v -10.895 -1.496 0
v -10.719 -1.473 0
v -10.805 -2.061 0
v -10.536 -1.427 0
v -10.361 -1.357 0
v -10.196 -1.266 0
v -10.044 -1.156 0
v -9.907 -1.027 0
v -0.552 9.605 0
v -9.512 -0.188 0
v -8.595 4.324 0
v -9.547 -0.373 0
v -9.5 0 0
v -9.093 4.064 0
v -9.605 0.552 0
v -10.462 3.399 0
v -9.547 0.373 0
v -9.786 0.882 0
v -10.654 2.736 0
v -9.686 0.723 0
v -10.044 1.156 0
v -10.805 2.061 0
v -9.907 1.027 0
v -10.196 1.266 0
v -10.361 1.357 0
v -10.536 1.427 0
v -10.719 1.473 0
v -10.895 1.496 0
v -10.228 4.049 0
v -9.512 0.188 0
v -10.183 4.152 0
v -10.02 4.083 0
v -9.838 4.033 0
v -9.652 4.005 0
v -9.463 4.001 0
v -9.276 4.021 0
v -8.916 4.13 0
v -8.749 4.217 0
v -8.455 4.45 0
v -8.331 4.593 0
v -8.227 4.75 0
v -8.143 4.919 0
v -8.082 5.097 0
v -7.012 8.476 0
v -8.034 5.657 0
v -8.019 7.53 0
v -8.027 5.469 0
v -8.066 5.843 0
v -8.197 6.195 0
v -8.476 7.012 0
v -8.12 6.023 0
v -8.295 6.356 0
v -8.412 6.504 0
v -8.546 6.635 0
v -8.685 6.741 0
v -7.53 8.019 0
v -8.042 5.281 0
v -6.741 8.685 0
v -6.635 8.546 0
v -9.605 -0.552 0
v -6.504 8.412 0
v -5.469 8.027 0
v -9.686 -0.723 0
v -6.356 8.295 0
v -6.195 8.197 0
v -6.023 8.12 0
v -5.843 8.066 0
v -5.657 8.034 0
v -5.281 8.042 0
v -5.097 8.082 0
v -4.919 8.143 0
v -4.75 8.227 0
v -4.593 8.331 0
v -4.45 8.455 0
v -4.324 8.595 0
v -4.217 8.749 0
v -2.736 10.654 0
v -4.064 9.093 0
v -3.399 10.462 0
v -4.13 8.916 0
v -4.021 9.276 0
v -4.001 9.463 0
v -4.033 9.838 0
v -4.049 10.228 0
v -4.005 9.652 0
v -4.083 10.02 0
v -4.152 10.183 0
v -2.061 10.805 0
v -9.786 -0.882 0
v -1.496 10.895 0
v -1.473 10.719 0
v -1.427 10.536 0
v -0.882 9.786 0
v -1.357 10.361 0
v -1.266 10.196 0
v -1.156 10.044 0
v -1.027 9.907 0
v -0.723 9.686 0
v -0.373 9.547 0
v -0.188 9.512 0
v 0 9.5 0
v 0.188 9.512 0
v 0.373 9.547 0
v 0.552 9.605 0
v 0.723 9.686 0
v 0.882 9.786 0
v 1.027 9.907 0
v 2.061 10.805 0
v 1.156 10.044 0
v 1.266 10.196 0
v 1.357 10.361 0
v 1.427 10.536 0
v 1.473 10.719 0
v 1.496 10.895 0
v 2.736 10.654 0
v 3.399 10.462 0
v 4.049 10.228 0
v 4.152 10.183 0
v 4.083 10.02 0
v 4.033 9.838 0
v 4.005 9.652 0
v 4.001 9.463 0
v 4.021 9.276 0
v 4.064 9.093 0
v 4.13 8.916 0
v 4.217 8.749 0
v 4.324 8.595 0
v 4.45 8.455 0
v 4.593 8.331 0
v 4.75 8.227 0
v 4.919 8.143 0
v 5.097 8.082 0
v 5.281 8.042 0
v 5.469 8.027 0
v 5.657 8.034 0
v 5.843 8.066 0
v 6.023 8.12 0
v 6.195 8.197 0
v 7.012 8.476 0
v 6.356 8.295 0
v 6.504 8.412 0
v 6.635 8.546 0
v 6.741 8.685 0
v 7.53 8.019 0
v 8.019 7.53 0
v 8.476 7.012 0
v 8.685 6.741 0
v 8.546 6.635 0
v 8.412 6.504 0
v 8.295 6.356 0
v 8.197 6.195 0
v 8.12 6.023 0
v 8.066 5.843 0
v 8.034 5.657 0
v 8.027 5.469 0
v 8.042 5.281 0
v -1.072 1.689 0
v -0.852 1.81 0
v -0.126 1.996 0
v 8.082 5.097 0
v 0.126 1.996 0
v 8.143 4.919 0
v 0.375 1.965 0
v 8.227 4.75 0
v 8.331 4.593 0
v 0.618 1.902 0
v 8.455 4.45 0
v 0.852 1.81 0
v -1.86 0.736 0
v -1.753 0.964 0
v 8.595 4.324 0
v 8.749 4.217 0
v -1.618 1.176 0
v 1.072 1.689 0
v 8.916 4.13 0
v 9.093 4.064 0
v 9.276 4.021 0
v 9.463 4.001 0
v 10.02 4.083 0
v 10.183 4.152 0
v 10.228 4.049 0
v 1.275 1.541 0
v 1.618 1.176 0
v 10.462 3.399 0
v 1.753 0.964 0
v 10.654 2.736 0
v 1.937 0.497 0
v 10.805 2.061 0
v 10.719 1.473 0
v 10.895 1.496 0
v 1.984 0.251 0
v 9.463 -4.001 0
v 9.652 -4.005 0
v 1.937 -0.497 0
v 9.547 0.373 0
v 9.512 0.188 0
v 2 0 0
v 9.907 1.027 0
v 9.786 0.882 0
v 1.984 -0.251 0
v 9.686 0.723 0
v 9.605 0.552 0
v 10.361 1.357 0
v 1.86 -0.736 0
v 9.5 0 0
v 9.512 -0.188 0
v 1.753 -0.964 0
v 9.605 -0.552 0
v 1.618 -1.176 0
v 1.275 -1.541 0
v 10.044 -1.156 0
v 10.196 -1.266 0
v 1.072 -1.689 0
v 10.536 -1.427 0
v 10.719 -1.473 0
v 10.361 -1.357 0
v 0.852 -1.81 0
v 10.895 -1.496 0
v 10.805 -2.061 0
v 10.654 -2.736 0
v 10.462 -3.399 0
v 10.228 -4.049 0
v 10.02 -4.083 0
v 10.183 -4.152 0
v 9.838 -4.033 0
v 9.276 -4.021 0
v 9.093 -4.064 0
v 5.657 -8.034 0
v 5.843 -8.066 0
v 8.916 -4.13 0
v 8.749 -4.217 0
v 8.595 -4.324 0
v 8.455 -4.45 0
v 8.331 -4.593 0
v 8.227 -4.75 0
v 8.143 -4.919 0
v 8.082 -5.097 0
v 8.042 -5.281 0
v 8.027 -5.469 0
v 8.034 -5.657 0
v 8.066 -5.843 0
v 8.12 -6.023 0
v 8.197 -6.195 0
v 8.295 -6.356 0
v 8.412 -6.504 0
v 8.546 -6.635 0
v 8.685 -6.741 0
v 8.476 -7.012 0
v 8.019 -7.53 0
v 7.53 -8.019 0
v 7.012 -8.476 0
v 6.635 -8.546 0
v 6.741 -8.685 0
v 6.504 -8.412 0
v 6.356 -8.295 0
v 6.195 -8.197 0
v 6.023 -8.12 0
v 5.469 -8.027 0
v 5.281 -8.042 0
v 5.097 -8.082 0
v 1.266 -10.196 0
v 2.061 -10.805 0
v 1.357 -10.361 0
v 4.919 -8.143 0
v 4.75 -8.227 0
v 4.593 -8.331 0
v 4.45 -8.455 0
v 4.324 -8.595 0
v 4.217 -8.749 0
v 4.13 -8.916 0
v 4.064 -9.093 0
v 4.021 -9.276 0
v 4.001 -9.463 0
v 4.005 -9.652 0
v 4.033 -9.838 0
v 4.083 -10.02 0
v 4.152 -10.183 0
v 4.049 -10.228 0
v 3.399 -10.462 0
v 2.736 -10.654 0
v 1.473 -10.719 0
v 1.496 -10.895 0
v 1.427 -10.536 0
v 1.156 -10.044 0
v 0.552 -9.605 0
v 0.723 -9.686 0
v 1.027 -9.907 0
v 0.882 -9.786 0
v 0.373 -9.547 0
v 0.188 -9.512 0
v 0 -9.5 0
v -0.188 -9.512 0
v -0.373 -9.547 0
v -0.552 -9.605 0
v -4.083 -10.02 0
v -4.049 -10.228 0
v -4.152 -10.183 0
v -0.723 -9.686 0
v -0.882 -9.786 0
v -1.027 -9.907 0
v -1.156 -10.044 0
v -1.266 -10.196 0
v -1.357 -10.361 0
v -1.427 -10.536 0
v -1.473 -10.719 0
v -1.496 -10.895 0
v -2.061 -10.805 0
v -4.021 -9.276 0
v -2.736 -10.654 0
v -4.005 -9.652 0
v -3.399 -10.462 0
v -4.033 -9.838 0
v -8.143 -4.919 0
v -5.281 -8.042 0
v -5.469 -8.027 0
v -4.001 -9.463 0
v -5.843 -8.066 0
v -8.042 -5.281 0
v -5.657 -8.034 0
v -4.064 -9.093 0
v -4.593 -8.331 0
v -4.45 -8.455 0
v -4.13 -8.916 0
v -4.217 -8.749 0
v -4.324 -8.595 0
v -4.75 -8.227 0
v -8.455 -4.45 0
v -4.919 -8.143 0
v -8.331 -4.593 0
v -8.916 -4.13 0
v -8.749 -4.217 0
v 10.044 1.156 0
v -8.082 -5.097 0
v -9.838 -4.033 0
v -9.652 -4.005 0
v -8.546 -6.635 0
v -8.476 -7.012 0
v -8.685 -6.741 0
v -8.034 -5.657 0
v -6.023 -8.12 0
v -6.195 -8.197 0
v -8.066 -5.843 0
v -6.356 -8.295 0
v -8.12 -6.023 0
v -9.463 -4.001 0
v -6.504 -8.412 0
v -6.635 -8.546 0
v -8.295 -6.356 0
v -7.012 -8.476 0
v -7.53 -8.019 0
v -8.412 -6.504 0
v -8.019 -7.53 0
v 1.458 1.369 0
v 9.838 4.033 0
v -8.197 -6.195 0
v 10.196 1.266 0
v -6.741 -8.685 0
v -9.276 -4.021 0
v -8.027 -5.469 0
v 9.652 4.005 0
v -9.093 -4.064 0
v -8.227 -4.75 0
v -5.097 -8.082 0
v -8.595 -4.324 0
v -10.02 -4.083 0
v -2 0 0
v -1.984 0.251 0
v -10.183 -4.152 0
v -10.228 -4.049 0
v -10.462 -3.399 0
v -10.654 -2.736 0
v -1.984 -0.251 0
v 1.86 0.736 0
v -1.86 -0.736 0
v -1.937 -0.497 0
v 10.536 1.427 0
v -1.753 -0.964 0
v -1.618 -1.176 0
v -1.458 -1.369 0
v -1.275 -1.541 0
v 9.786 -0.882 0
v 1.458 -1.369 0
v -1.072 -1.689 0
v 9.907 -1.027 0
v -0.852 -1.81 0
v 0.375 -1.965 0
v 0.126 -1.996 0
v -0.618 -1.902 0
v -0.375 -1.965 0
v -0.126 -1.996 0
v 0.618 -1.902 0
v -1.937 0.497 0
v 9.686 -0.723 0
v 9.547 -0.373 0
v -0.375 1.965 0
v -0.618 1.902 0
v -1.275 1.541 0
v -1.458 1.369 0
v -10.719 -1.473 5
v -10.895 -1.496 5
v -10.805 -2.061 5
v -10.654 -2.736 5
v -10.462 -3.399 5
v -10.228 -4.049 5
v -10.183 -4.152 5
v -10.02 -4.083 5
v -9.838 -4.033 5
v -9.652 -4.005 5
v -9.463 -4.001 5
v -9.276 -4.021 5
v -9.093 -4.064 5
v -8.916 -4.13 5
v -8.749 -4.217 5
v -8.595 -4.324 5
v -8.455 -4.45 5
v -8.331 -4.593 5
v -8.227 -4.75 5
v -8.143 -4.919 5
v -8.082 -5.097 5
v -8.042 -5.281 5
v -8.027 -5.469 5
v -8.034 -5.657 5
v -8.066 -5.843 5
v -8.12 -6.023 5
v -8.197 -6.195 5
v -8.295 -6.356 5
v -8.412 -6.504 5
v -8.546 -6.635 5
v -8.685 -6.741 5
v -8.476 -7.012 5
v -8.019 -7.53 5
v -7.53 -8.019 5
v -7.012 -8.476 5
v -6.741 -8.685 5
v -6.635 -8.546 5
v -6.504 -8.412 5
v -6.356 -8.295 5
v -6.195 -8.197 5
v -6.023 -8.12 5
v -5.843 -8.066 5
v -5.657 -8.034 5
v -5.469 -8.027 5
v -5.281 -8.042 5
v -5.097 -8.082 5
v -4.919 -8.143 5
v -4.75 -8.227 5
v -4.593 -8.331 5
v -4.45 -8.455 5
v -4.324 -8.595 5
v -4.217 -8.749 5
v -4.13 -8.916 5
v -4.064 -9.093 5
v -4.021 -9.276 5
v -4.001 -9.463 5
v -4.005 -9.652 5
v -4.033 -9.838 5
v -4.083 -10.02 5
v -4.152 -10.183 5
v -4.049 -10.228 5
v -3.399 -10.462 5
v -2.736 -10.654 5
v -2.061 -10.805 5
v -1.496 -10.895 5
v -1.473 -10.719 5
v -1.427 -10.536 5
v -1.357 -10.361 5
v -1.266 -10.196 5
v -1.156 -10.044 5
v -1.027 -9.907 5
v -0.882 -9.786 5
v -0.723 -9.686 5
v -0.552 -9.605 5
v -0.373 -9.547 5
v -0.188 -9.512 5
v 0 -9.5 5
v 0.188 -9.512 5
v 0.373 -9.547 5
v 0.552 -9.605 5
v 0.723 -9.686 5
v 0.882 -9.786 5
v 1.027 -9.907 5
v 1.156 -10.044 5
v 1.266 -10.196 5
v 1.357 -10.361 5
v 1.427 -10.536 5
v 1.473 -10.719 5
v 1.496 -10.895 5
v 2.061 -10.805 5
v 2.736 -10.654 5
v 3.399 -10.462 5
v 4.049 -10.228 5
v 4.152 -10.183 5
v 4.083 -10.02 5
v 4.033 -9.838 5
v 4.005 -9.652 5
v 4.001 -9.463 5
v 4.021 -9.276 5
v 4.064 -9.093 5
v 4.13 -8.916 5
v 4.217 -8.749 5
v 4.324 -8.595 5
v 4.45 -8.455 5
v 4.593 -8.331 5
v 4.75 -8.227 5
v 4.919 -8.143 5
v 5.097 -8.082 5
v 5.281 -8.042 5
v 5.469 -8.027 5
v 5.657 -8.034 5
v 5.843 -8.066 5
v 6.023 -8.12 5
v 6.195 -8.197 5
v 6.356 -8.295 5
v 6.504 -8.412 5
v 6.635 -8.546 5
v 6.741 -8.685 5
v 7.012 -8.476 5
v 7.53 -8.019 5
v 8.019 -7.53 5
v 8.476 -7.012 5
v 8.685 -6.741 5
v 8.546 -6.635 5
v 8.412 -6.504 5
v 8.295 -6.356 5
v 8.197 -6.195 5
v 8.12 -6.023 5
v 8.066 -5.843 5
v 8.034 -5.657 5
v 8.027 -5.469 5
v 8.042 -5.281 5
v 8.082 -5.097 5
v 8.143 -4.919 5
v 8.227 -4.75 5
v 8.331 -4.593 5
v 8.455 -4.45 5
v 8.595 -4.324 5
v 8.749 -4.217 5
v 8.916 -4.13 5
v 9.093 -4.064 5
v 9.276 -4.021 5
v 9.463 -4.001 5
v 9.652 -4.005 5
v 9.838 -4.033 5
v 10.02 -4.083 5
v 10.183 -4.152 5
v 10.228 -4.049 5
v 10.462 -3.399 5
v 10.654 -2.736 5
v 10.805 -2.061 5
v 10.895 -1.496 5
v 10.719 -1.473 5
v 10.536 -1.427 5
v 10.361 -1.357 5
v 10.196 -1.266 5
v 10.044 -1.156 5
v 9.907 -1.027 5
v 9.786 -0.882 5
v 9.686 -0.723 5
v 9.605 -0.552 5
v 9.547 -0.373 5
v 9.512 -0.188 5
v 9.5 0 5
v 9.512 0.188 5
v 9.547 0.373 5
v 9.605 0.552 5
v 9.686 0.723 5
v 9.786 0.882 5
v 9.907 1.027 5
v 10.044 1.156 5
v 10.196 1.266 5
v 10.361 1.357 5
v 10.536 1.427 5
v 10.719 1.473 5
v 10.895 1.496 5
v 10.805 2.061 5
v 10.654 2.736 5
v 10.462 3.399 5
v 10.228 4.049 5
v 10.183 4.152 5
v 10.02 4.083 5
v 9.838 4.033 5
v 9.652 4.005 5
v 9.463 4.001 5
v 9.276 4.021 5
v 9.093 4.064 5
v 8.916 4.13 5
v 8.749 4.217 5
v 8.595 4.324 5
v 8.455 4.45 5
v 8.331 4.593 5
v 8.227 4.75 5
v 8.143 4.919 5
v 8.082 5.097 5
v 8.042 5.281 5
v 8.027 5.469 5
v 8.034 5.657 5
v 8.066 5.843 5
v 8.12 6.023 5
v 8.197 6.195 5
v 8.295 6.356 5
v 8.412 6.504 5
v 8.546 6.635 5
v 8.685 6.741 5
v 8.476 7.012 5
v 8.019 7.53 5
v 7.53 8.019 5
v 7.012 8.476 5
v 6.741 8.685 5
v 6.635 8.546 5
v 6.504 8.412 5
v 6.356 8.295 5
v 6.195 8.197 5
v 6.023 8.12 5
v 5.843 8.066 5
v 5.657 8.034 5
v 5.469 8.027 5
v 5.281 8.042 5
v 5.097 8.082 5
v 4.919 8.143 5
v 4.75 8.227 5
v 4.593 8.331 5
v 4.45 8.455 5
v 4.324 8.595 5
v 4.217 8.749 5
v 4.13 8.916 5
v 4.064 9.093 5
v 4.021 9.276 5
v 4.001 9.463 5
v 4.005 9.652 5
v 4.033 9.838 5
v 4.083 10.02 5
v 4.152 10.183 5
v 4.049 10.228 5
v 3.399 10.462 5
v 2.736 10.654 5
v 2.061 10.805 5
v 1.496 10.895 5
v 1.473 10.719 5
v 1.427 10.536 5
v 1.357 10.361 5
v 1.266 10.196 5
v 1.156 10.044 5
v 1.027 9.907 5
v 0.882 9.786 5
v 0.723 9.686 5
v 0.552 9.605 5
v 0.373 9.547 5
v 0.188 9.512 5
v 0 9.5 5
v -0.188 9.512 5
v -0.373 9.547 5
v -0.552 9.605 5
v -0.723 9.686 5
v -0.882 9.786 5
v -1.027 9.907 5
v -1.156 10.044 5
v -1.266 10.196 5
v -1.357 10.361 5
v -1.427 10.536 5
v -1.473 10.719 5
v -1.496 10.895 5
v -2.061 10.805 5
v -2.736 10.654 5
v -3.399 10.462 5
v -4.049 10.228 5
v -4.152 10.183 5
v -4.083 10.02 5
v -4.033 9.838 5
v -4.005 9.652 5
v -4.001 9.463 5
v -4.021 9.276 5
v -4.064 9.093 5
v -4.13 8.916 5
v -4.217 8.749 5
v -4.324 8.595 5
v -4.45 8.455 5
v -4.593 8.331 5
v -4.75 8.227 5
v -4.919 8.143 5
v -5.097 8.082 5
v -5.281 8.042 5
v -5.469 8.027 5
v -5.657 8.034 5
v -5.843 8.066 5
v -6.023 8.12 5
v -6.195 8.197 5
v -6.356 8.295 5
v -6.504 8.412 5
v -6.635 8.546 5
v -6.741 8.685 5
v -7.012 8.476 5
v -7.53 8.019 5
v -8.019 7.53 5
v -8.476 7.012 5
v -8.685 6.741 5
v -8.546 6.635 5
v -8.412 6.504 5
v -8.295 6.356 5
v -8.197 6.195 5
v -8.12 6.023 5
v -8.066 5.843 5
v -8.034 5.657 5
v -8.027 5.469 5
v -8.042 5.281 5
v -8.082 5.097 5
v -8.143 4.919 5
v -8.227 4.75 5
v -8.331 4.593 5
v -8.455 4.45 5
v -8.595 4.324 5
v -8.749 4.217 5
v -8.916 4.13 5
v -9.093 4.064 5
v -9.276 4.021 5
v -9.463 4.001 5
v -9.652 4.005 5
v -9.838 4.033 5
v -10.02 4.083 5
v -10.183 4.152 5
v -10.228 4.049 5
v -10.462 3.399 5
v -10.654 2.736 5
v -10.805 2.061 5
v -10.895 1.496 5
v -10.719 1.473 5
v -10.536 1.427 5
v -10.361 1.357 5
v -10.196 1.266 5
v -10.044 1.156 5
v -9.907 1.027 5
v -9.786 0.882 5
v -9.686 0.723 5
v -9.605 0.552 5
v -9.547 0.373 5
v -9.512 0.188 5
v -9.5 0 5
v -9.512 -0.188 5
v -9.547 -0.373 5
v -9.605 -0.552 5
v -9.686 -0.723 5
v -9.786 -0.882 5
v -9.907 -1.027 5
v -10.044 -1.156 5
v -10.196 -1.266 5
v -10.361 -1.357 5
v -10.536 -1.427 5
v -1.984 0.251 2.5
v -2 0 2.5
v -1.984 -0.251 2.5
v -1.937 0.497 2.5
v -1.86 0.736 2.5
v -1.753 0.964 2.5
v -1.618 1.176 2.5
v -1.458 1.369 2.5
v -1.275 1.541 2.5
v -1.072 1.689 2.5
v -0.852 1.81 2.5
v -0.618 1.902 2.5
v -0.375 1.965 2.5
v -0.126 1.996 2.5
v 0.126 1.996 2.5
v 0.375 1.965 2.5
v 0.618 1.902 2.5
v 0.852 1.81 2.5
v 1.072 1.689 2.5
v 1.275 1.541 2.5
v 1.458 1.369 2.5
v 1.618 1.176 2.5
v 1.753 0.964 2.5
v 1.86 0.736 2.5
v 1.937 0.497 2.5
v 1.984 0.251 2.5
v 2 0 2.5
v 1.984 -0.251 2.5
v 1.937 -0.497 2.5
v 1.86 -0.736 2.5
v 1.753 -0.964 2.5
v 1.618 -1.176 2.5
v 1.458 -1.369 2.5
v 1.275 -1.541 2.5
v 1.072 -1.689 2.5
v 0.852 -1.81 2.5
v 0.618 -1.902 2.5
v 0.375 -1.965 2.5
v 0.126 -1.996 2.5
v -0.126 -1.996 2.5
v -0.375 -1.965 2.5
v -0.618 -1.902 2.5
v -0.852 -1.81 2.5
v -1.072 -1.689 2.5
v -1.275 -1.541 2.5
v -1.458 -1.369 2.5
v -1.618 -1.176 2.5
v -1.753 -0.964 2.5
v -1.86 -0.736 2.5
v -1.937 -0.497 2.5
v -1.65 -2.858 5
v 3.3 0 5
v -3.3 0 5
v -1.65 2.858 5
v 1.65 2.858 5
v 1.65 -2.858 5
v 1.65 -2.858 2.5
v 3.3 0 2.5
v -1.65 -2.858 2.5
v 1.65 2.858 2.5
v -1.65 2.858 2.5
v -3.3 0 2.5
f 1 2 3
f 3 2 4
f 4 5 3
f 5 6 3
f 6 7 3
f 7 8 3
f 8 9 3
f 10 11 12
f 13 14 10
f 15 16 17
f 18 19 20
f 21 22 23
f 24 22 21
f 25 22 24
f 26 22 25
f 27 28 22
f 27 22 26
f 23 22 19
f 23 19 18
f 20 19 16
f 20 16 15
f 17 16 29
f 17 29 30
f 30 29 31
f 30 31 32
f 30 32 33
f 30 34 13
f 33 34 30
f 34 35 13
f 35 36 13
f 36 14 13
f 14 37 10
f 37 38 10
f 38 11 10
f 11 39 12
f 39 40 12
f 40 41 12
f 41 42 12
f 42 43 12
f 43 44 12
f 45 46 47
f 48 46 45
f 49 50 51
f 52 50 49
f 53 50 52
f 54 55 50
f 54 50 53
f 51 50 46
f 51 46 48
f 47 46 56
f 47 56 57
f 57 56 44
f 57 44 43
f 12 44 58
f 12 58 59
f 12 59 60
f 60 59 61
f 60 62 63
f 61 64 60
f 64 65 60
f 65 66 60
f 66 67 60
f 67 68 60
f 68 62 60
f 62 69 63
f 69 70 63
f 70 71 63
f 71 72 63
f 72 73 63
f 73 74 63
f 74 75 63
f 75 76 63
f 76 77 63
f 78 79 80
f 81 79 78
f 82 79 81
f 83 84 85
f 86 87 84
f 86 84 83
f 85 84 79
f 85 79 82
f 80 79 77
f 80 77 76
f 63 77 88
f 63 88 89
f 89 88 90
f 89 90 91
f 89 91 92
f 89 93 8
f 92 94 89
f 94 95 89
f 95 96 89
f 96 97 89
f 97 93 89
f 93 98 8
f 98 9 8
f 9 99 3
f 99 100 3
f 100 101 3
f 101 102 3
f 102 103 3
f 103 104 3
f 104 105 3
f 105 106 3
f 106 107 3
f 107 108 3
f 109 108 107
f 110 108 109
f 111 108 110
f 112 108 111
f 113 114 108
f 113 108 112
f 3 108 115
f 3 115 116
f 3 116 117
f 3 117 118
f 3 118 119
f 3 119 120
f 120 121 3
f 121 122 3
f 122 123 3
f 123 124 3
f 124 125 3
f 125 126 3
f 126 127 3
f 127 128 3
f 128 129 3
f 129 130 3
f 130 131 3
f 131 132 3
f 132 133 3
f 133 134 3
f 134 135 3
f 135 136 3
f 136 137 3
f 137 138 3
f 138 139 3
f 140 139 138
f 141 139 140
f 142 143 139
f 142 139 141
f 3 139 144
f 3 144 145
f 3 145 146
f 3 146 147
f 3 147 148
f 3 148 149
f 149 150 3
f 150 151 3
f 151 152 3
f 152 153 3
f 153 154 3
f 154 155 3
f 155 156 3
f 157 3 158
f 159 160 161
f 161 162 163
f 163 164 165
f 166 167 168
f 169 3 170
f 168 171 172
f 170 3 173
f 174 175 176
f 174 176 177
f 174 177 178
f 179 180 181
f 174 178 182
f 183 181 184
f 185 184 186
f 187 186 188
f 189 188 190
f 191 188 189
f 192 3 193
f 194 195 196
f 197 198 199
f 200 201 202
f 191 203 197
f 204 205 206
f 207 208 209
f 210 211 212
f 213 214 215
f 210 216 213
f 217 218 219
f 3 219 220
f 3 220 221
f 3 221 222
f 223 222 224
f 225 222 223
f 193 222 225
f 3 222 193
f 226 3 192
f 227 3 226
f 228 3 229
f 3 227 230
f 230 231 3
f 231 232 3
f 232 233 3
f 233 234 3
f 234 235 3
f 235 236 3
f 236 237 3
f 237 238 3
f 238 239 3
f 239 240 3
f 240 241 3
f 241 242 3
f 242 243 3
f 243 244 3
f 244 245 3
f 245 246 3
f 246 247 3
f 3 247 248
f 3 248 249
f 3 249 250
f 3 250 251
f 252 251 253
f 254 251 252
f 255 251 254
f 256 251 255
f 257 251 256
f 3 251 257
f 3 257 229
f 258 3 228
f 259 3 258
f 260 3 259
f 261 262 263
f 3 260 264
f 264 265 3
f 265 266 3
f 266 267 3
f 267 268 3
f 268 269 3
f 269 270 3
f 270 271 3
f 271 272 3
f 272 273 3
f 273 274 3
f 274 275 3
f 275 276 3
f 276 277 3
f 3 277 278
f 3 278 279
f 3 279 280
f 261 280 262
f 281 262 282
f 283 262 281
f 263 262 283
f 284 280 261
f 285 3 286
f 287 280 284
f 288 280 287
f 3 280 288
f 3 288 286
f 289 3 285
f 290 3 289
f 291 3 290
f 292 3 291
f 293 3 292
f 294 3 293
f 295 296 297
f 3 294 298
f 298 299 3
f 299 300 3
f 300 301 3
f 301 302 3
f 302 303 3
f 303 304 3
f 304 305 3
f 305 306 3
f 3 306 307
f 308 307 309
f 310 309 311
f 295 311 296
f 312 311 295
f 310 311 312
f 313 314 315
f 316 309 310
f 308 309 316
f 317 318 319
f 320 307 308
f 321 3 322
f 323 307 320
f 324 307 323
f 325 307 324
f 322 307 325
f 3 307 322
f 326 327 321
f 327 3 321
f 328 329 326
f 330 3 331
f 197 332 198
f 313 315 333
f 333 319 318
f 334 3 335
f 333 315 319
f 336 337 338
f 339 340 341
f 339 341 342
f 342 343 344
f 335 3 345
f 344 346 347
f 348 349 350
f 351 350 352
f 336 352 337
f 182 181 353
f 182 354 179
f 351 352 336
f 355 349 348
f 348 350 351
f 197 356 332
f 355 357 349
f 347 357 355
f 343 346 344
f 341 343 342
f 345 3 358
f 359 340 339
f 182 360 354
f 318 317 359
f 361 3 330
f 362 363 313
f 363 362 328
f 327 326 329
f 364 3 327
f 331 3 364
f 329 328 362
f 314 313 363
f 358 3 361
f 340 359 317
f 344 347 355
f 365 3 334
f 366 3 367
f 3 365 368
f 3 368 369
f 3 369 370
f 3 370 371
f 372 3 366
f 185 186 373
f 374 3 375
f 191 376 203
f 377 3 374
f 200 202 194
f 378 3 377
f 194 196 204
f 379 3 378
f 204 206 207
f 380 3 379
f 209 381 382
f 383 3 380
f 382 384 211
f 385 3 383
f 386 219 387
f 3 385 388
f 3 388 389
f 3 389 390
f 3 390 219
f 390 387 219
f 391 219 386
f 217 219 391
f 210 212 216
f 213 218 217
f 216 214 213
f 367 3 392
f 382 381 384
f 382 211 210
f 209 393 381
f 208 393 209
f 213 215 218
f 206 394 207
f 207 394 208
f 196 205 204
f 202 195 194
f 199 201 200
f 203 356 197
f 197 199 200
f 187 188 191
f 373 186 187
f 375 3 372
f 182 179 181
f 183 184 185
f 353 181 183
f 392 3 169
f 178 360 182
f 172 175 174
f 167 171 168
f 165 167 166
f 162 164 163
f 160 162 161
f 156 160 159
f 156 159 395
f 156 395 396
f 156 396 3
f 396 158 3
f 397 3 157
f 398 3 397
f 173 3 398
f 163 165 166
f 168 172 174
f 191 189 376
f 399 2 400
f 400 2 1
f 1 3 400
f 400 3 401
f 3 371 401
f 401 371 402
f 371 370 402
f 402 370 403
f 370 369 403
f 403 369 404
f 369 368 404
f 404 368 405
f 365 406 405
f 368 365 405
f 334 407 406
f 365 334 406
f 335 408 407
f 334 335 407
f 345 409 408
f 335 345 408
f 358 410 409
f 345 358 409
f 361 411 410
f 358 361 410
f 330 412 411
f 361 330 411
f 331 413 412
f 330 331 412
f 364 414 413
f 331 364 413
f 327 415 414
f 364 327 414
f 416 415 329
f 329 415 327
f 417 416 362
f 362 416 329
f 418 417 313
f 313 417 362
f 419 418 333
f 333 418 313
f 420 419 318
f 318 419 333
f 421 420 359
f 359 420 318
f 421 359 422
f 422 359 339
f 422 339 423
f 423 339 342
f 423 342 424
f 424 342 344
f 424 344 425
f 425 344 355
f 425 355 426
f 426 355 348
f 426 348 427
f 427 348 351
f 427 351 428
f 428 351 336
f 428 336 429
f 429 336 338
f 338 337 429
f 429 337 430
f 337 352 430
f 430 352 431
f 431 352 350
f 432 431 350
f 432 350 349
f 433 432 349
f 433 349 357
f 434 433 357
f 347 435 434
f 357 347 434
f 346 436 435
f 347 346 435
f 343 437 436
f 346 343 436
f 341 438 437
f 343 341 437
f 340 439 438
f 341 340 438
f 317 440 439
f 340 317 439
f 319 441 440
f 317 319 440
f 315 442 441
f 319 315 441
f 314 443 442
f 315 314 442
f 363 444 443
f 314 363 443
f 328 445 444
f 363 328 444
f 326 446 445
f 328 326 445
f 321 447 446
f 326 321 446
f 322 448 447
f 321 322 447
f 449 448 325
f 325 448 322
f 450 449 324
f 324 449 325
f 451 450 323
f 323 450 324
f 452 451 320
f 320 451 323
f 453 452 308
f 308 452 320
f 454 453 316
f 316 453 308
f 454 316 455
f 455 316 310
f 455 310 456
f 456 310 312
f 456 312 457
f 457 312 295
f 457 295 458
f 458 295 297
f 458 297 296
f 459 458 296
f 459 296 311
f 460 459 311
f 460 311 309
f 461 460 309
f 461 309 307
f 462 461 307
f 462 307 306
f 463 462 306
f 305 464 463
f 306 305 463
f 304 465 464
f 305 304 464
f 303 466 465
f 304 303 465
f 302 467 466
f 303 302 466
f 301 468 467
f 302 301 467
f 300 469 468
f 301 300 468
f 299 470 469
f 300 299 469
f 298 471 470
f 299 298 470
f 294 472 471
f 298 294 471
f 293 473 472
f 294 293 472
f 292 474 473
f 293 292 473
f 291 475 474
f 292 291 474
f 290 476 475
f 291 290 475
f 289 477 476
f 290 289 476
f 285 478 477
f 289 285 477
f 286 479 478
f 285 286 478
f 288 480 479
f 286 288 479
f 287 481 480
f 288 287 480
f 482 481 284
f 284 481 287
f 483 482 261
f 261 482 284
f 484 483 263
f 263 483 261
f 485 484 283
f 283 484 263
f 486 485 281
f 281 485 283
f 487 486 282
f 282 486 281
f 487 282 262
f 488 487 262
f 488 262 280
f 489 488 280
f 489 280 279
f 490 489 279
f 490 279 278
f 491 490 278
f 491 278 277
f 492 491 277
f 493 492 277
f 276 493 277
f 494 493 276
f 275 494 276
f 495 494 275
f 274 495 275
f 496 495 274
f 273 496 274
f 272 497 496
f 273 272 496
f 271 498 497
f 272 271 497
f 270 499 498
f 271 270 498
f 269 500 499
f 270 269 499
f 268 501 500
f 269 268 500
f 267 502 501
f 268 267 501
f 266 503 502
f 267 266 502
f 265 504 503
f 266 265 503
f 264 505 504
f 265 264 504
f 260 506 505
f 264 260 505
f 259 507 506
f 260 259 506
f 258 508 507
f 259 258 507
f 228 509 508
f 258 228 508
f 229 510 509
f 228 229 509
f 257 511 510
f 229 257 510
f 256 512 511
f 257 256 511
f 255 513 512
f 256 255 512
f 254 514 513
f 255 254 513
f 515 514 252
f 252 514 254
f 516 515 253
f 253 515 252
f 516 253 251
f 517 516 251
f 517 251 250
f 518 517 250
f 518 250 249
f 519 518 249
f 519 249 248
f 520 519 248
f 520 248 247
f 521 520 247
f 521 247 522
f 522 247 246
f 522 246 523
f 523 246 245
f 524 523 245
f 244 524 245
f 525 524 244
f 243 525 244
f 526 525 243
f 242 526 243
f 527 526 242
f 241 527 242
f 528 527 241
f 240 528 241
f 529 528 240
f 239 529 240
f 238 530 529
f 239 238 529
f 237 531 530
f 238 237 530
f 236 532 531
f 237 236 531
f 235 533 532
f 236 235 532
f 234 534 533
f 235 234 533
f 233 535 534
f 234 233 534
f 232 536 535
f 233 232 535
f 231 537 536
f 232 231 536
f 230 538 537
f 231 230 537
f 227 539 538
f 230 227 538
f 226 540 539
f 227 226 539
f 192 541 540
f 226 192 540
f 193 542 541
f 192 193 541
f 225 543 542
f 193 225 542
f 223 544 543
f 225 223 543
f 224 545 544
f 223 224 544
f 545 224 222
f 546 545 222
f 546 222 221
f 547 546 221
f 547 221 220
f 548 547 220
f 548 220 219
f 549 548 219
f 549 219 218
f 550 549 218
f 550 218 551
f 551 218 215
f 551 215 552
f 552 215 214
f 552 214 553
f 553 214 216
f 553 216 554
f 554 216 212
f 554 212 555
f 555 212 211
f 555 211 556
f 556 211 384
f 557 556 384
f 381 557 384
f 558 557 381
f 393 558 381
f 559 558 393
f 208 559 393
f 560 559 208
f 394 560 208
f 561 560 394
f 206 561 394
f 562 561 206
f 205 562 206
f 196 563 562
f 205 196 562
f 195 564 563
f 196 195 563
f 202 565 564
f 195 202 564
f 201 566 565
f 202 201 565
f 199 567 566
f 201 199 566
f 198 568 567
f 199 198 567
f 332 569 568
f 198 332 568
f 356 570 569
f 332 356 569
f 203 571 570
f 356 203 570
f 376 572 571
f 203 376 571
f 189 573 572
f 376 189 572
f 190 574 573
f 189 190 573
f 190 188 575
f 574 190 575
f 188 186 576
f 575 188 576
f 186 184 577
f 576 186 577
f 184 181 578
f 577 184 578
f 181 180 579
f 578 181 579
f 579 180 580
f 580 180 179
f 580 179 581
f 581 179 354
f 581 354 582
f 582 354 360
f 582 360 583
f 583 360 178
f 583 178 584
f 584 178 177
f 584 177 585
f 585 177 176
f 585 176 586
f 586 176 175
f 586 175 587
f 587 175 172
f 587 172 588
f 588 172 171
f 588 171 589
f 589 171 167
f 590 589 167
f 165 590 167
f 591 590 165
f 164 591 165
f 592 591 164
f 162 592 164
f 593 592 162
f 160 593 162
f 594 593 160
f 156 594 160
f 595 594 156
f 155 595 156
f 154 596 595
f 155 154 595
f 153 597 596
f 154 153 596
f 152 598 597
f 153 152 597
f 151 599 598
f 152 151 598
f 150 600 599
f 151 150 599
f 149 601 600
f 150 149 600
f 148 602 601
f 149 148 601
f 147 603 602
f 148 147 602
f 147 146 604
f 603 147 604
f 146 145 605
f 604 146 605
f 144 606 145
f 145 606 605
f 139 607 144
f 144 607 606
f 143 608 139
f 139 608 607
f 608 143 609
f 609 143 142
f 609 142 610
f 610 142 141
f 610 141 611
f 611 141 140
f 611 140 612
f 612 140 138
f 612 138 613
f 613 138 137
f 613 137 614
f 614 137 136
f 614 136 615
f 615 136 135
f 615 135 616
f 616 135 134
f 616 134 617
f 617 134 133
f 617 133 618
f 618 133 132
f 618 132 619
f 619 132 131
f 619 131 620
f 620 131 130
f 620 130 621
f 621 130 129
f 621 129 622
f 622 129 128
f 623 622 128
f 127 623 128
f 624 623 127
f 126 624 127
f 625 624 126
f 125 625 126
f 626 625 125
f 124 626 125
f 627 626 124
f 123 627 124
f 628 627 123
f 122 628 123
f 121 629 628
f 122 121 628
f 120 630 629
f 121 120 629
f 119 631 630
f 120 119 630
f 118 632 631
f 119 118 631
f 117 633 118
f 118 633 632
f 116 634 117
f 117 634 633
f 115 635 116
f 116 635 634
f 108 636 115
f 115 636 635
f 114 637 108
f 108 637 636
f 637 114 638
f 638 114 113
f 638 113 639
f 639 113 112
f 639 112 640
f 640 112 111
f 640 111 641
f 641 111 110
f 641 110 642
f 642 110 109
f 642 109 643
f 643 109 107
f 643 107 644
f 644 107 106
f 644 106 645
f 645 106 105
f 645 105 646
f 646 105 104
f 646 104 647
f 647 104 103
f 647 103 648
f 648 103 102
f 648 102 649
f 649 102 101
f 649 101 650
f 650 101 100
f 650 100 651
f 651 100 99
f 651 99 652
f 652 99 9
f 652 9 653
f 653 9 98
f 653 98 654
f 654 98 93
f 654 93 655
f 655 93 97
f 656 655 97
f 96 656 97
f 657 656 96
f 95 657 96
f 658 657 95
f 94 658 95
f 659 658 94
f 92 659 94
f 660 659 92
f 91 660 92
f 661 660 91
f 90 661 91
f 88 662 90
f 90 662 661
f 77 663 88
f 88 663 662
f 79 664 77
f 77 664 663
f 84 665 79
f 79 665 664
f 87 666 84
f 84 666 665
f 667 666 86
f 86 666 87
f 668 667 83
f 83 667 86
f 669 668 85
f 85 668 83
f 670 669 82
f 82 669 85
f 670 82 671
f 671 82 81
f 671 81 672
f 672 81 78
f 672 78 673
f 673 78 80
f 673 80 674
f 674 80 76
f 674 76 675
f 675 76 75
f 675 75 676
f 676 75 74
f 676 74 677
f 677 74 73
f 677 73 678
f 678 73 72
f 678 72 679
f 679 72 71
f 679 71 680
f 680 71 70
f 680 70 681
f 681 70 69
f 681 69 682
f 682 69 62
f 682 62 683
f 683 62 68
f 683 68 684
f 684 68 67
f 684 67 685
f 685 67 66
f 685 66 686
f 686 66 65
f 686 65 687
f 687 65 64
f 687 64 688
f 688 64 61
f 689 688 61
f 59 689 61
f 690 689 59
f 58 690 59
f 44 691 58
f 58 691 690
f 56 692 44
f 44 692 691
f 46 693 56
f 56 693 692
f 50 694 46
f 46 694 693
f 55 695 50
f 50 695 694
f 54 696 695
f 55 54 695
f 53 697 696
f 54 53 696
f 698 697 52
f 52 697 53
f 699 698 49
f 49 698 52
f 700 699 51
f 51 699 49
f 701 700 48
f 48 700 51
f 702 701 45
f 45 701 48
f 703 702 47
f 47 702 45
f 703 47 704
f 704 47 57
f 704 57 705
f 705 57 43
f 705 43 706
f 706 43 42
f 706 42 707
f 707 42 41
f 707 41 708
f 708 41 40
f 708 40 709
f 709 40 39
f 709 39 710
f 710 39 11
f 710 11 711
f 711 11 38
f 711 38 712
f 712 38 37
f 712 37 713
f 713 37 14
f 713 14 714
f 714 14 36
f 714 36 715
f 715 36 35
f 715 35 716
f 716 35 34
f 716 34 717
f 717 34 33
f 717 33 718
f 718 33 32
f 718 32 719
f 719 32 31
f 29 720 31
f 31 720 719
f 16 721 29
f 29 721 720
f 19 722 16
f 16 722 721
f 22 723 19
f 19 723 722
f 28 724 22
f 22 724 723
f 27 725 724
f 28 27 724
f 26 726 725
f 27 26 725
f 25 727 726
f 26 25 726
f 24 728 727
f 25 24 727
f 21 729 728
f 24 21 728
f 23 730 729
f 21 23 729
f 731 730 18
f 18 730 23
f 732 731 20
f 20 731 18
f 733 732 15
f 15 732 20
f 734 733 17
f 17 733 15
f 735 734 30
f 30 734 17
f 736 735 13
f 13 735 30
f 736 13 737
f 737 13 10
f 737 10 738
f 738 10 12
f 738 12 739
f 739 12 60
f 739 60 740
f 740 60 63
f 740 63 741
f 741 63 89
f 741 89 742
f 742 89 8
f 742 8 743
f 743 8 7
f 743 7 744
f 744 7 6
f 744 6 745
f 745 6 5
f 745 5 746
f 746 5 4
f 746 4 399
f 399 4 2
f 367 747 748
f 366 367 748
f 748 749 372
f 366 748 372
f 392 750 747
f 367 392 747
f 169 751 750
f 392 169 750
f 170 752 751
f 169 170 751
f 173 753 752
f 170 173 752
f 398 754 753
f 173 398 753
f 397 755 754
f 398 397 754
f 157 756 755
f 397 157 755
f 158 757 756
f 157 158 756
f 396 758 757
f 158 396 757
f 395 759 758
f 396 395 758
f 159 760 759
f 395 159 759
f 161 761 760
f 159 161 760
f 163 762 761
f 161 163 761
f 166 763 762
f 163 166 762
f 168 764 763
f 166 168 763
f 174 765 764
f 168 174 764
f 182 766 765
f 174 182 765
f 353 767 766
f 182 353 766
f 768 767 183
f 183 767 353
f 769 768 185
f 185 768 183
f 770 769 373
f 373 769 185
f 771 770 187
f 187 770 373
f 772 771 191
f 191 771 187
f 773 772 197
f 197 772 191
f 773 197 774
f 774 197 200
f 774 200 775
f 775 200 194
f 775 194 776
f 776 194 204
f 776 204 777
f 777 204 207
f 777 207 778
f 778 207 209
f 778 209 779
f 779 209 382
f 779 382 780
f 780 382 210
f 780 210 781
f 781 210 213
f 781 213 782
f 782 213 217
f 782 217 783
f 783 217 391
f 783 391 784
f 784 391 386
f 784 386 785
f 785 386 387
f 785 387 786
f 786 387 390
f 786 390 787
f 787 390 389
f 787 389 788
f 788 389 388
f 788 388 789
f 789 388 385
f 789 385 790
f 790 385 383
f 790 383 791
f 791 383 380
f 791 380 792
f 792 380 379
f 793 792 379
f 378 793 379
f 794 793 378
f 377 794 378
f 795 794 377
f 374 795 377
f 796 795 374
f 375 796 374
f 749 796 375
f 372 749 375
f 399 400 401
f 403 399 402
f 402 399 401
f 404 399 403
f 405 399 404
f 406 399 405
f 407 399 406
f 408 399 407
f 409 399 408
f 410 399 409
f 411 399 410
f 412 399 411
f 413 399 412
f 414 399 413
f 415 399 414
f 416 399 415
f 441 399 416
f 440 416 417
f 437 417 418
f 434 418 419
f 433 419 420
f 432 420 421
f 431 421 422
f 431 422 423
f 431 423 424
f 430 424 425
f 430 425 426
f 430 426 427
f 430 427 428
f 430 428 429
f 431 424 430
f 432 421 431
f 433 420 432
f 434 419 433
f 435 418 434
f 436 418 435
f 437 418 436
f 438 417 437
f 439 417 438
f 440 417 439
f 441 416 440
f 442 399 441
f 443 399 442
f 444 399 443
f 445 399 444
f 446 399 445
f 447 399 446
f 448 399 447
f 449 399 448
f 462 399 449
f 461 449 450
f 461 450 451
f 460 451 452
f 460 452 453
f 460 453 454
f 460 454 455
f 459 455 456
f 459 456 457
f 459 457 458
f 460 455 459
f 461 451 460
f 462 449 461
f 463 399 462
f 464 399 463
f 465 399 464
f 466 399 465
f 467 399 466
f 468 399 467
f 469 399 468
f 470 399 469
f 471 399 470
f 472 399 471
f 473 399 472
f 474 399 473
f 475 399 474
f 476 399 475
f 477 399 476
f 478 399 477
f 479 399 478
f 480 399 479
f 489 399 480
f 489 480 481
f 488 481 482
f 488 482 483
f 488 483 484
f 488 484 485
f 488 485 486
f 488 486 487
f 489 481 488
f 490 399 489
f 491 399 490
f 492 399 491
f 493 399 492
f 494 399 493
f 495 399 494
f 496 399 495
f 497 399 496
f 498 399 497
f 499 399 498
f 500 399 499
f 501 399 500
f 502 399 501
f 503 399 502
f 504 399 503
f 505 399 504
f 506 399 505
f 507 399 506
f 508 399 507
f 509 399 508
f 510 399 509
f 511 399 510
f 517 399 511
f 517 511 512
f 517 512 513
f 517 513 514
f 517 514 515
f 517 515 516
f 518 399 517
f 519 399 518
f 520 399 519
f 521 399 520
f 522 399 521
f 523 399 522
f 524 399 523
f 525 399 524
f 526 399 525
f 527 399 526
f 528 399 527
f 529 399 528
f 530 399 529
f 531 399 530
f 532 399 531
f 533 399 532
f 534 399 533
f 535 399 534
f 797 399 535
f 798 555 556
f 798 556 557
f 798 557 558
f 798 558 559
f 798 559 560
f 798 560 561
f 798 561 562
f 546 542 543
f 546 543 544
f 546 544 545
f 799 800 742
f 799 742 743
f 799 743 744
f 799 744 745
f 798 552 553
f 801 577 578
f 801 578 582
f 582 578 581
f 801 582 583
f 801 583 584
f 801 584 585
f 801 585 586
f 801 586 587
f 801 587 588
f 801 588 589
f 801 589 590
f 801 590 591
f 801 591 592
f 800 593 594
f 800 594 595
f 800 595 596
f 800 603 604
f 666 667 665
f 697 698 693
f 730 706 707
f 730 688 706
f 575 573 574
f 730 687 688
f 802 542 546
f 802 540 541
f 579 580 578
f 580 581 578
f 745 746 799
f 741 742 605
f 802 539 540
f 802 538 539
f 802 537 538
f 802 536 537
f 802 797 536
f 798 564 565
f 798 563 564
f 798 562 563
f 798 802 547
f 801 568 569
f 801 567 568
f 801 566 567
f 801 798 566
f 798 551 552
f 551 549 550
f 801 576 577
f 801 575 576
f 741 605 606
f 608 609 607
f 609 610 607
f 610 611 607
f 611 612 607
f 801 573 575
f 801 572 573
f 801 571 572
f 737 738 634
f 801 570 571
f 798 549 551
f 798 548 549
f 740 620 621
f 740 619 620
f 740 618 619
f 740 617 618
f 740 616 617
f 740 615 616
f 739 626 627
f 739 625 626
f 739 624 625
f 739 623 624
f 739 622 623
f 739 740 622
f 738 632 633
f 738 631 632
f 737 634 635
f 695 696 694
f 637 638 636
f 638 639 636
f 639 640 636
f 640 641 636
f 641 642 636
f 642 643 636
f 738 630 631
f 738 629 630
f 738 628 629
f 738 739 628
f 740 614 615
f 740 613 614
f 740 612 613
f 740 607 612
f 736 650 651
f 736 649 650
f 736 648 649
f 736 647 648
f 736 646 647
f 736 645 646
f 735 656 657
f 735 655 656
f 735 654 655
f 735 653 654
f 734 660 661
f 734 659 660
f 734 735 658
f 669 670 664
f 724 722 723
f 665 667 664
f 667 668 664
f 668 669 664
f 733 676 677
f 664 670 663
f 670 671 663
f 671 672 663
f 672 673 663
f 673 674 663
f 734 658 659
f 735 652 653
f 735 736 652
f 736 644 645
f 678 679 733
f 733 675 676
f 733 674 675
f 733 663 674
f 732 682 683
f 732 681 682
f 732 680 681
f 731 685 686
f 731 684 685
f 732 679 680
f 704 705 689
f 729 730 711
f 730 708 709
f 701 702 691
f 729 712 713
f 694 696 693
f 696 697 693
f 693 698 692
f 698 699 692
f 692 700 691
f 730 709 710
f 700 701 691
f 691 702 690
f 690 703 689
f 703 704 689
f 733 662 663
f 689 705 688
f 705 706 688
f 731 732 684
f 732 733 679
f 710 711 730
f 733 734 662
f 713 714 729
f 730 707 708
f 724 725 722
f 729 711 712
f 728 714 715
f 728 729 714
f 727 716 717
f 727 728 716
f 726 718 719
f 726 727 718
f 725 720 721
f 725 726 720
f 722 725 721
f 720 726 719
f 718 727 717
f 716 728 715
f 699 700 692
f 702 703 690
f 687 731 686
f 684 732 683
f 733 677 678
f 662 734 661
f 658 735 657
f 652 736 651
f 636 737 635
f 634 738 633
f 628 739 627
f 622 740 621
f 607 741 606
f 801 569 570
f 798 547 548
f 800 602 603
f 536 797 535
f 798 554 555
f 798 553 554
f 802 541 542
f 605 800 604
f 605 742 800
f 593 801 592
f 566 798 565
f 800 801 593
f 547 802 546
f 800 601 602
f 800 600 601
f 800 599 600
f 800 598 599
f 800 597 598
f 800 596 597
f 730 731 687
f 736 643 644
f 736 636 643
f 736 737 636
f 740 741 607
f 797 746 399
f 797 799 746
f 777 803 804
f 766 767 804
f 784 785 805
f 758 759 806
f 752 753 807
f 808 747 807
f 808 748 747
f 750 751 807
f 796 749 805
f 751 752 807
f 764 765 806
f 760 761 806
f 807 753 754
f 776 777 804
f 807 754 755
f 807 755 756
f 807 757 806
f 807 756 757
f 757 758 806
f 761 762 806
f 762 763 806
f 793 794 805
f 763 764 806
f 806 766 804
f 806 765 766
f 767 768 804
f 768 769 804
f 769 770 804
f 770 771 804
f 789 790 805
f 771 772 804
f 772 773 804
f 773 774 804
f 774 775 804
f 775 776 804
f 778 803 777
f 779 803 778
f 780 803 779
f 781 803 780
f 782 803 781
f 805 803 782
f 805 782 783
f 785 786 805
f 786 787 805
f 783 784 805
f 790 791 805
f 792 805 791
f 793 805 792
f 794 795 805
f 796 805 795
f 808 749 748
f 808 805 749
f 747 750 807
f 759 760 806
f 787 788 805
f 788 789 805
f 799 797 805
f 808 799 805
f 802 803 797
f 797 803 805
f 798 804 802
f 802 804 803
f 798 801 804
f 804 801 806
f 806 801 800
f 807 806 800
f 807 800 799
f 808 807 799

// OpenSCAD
r_molette=11;
r_trou=1.5;
trou_m3=2;
ecrou_m3=3.3;
ep=5;
nb_trou=12;

module trou(){
	translate([r_molette,0,-5]){cylinder(h=ep+10, r=r_trou, $fn=50);}

}

module molette(){
	difference(){
		cylinder(h=ep, r=r_molette, $fn=100);

		translate([0,0,-5]){cylinder(h=ep+10, r=trou_m3, $fn=50);}
		translate([0,0,ep/2]){cylinder(h=ep, r=ecrou_m3, $fn=6);}

		for(i=[0:1:nb_trou]){
		rotate([0,0,i*(360/nb_trou)])trou();
		}

	}

}

molette();
